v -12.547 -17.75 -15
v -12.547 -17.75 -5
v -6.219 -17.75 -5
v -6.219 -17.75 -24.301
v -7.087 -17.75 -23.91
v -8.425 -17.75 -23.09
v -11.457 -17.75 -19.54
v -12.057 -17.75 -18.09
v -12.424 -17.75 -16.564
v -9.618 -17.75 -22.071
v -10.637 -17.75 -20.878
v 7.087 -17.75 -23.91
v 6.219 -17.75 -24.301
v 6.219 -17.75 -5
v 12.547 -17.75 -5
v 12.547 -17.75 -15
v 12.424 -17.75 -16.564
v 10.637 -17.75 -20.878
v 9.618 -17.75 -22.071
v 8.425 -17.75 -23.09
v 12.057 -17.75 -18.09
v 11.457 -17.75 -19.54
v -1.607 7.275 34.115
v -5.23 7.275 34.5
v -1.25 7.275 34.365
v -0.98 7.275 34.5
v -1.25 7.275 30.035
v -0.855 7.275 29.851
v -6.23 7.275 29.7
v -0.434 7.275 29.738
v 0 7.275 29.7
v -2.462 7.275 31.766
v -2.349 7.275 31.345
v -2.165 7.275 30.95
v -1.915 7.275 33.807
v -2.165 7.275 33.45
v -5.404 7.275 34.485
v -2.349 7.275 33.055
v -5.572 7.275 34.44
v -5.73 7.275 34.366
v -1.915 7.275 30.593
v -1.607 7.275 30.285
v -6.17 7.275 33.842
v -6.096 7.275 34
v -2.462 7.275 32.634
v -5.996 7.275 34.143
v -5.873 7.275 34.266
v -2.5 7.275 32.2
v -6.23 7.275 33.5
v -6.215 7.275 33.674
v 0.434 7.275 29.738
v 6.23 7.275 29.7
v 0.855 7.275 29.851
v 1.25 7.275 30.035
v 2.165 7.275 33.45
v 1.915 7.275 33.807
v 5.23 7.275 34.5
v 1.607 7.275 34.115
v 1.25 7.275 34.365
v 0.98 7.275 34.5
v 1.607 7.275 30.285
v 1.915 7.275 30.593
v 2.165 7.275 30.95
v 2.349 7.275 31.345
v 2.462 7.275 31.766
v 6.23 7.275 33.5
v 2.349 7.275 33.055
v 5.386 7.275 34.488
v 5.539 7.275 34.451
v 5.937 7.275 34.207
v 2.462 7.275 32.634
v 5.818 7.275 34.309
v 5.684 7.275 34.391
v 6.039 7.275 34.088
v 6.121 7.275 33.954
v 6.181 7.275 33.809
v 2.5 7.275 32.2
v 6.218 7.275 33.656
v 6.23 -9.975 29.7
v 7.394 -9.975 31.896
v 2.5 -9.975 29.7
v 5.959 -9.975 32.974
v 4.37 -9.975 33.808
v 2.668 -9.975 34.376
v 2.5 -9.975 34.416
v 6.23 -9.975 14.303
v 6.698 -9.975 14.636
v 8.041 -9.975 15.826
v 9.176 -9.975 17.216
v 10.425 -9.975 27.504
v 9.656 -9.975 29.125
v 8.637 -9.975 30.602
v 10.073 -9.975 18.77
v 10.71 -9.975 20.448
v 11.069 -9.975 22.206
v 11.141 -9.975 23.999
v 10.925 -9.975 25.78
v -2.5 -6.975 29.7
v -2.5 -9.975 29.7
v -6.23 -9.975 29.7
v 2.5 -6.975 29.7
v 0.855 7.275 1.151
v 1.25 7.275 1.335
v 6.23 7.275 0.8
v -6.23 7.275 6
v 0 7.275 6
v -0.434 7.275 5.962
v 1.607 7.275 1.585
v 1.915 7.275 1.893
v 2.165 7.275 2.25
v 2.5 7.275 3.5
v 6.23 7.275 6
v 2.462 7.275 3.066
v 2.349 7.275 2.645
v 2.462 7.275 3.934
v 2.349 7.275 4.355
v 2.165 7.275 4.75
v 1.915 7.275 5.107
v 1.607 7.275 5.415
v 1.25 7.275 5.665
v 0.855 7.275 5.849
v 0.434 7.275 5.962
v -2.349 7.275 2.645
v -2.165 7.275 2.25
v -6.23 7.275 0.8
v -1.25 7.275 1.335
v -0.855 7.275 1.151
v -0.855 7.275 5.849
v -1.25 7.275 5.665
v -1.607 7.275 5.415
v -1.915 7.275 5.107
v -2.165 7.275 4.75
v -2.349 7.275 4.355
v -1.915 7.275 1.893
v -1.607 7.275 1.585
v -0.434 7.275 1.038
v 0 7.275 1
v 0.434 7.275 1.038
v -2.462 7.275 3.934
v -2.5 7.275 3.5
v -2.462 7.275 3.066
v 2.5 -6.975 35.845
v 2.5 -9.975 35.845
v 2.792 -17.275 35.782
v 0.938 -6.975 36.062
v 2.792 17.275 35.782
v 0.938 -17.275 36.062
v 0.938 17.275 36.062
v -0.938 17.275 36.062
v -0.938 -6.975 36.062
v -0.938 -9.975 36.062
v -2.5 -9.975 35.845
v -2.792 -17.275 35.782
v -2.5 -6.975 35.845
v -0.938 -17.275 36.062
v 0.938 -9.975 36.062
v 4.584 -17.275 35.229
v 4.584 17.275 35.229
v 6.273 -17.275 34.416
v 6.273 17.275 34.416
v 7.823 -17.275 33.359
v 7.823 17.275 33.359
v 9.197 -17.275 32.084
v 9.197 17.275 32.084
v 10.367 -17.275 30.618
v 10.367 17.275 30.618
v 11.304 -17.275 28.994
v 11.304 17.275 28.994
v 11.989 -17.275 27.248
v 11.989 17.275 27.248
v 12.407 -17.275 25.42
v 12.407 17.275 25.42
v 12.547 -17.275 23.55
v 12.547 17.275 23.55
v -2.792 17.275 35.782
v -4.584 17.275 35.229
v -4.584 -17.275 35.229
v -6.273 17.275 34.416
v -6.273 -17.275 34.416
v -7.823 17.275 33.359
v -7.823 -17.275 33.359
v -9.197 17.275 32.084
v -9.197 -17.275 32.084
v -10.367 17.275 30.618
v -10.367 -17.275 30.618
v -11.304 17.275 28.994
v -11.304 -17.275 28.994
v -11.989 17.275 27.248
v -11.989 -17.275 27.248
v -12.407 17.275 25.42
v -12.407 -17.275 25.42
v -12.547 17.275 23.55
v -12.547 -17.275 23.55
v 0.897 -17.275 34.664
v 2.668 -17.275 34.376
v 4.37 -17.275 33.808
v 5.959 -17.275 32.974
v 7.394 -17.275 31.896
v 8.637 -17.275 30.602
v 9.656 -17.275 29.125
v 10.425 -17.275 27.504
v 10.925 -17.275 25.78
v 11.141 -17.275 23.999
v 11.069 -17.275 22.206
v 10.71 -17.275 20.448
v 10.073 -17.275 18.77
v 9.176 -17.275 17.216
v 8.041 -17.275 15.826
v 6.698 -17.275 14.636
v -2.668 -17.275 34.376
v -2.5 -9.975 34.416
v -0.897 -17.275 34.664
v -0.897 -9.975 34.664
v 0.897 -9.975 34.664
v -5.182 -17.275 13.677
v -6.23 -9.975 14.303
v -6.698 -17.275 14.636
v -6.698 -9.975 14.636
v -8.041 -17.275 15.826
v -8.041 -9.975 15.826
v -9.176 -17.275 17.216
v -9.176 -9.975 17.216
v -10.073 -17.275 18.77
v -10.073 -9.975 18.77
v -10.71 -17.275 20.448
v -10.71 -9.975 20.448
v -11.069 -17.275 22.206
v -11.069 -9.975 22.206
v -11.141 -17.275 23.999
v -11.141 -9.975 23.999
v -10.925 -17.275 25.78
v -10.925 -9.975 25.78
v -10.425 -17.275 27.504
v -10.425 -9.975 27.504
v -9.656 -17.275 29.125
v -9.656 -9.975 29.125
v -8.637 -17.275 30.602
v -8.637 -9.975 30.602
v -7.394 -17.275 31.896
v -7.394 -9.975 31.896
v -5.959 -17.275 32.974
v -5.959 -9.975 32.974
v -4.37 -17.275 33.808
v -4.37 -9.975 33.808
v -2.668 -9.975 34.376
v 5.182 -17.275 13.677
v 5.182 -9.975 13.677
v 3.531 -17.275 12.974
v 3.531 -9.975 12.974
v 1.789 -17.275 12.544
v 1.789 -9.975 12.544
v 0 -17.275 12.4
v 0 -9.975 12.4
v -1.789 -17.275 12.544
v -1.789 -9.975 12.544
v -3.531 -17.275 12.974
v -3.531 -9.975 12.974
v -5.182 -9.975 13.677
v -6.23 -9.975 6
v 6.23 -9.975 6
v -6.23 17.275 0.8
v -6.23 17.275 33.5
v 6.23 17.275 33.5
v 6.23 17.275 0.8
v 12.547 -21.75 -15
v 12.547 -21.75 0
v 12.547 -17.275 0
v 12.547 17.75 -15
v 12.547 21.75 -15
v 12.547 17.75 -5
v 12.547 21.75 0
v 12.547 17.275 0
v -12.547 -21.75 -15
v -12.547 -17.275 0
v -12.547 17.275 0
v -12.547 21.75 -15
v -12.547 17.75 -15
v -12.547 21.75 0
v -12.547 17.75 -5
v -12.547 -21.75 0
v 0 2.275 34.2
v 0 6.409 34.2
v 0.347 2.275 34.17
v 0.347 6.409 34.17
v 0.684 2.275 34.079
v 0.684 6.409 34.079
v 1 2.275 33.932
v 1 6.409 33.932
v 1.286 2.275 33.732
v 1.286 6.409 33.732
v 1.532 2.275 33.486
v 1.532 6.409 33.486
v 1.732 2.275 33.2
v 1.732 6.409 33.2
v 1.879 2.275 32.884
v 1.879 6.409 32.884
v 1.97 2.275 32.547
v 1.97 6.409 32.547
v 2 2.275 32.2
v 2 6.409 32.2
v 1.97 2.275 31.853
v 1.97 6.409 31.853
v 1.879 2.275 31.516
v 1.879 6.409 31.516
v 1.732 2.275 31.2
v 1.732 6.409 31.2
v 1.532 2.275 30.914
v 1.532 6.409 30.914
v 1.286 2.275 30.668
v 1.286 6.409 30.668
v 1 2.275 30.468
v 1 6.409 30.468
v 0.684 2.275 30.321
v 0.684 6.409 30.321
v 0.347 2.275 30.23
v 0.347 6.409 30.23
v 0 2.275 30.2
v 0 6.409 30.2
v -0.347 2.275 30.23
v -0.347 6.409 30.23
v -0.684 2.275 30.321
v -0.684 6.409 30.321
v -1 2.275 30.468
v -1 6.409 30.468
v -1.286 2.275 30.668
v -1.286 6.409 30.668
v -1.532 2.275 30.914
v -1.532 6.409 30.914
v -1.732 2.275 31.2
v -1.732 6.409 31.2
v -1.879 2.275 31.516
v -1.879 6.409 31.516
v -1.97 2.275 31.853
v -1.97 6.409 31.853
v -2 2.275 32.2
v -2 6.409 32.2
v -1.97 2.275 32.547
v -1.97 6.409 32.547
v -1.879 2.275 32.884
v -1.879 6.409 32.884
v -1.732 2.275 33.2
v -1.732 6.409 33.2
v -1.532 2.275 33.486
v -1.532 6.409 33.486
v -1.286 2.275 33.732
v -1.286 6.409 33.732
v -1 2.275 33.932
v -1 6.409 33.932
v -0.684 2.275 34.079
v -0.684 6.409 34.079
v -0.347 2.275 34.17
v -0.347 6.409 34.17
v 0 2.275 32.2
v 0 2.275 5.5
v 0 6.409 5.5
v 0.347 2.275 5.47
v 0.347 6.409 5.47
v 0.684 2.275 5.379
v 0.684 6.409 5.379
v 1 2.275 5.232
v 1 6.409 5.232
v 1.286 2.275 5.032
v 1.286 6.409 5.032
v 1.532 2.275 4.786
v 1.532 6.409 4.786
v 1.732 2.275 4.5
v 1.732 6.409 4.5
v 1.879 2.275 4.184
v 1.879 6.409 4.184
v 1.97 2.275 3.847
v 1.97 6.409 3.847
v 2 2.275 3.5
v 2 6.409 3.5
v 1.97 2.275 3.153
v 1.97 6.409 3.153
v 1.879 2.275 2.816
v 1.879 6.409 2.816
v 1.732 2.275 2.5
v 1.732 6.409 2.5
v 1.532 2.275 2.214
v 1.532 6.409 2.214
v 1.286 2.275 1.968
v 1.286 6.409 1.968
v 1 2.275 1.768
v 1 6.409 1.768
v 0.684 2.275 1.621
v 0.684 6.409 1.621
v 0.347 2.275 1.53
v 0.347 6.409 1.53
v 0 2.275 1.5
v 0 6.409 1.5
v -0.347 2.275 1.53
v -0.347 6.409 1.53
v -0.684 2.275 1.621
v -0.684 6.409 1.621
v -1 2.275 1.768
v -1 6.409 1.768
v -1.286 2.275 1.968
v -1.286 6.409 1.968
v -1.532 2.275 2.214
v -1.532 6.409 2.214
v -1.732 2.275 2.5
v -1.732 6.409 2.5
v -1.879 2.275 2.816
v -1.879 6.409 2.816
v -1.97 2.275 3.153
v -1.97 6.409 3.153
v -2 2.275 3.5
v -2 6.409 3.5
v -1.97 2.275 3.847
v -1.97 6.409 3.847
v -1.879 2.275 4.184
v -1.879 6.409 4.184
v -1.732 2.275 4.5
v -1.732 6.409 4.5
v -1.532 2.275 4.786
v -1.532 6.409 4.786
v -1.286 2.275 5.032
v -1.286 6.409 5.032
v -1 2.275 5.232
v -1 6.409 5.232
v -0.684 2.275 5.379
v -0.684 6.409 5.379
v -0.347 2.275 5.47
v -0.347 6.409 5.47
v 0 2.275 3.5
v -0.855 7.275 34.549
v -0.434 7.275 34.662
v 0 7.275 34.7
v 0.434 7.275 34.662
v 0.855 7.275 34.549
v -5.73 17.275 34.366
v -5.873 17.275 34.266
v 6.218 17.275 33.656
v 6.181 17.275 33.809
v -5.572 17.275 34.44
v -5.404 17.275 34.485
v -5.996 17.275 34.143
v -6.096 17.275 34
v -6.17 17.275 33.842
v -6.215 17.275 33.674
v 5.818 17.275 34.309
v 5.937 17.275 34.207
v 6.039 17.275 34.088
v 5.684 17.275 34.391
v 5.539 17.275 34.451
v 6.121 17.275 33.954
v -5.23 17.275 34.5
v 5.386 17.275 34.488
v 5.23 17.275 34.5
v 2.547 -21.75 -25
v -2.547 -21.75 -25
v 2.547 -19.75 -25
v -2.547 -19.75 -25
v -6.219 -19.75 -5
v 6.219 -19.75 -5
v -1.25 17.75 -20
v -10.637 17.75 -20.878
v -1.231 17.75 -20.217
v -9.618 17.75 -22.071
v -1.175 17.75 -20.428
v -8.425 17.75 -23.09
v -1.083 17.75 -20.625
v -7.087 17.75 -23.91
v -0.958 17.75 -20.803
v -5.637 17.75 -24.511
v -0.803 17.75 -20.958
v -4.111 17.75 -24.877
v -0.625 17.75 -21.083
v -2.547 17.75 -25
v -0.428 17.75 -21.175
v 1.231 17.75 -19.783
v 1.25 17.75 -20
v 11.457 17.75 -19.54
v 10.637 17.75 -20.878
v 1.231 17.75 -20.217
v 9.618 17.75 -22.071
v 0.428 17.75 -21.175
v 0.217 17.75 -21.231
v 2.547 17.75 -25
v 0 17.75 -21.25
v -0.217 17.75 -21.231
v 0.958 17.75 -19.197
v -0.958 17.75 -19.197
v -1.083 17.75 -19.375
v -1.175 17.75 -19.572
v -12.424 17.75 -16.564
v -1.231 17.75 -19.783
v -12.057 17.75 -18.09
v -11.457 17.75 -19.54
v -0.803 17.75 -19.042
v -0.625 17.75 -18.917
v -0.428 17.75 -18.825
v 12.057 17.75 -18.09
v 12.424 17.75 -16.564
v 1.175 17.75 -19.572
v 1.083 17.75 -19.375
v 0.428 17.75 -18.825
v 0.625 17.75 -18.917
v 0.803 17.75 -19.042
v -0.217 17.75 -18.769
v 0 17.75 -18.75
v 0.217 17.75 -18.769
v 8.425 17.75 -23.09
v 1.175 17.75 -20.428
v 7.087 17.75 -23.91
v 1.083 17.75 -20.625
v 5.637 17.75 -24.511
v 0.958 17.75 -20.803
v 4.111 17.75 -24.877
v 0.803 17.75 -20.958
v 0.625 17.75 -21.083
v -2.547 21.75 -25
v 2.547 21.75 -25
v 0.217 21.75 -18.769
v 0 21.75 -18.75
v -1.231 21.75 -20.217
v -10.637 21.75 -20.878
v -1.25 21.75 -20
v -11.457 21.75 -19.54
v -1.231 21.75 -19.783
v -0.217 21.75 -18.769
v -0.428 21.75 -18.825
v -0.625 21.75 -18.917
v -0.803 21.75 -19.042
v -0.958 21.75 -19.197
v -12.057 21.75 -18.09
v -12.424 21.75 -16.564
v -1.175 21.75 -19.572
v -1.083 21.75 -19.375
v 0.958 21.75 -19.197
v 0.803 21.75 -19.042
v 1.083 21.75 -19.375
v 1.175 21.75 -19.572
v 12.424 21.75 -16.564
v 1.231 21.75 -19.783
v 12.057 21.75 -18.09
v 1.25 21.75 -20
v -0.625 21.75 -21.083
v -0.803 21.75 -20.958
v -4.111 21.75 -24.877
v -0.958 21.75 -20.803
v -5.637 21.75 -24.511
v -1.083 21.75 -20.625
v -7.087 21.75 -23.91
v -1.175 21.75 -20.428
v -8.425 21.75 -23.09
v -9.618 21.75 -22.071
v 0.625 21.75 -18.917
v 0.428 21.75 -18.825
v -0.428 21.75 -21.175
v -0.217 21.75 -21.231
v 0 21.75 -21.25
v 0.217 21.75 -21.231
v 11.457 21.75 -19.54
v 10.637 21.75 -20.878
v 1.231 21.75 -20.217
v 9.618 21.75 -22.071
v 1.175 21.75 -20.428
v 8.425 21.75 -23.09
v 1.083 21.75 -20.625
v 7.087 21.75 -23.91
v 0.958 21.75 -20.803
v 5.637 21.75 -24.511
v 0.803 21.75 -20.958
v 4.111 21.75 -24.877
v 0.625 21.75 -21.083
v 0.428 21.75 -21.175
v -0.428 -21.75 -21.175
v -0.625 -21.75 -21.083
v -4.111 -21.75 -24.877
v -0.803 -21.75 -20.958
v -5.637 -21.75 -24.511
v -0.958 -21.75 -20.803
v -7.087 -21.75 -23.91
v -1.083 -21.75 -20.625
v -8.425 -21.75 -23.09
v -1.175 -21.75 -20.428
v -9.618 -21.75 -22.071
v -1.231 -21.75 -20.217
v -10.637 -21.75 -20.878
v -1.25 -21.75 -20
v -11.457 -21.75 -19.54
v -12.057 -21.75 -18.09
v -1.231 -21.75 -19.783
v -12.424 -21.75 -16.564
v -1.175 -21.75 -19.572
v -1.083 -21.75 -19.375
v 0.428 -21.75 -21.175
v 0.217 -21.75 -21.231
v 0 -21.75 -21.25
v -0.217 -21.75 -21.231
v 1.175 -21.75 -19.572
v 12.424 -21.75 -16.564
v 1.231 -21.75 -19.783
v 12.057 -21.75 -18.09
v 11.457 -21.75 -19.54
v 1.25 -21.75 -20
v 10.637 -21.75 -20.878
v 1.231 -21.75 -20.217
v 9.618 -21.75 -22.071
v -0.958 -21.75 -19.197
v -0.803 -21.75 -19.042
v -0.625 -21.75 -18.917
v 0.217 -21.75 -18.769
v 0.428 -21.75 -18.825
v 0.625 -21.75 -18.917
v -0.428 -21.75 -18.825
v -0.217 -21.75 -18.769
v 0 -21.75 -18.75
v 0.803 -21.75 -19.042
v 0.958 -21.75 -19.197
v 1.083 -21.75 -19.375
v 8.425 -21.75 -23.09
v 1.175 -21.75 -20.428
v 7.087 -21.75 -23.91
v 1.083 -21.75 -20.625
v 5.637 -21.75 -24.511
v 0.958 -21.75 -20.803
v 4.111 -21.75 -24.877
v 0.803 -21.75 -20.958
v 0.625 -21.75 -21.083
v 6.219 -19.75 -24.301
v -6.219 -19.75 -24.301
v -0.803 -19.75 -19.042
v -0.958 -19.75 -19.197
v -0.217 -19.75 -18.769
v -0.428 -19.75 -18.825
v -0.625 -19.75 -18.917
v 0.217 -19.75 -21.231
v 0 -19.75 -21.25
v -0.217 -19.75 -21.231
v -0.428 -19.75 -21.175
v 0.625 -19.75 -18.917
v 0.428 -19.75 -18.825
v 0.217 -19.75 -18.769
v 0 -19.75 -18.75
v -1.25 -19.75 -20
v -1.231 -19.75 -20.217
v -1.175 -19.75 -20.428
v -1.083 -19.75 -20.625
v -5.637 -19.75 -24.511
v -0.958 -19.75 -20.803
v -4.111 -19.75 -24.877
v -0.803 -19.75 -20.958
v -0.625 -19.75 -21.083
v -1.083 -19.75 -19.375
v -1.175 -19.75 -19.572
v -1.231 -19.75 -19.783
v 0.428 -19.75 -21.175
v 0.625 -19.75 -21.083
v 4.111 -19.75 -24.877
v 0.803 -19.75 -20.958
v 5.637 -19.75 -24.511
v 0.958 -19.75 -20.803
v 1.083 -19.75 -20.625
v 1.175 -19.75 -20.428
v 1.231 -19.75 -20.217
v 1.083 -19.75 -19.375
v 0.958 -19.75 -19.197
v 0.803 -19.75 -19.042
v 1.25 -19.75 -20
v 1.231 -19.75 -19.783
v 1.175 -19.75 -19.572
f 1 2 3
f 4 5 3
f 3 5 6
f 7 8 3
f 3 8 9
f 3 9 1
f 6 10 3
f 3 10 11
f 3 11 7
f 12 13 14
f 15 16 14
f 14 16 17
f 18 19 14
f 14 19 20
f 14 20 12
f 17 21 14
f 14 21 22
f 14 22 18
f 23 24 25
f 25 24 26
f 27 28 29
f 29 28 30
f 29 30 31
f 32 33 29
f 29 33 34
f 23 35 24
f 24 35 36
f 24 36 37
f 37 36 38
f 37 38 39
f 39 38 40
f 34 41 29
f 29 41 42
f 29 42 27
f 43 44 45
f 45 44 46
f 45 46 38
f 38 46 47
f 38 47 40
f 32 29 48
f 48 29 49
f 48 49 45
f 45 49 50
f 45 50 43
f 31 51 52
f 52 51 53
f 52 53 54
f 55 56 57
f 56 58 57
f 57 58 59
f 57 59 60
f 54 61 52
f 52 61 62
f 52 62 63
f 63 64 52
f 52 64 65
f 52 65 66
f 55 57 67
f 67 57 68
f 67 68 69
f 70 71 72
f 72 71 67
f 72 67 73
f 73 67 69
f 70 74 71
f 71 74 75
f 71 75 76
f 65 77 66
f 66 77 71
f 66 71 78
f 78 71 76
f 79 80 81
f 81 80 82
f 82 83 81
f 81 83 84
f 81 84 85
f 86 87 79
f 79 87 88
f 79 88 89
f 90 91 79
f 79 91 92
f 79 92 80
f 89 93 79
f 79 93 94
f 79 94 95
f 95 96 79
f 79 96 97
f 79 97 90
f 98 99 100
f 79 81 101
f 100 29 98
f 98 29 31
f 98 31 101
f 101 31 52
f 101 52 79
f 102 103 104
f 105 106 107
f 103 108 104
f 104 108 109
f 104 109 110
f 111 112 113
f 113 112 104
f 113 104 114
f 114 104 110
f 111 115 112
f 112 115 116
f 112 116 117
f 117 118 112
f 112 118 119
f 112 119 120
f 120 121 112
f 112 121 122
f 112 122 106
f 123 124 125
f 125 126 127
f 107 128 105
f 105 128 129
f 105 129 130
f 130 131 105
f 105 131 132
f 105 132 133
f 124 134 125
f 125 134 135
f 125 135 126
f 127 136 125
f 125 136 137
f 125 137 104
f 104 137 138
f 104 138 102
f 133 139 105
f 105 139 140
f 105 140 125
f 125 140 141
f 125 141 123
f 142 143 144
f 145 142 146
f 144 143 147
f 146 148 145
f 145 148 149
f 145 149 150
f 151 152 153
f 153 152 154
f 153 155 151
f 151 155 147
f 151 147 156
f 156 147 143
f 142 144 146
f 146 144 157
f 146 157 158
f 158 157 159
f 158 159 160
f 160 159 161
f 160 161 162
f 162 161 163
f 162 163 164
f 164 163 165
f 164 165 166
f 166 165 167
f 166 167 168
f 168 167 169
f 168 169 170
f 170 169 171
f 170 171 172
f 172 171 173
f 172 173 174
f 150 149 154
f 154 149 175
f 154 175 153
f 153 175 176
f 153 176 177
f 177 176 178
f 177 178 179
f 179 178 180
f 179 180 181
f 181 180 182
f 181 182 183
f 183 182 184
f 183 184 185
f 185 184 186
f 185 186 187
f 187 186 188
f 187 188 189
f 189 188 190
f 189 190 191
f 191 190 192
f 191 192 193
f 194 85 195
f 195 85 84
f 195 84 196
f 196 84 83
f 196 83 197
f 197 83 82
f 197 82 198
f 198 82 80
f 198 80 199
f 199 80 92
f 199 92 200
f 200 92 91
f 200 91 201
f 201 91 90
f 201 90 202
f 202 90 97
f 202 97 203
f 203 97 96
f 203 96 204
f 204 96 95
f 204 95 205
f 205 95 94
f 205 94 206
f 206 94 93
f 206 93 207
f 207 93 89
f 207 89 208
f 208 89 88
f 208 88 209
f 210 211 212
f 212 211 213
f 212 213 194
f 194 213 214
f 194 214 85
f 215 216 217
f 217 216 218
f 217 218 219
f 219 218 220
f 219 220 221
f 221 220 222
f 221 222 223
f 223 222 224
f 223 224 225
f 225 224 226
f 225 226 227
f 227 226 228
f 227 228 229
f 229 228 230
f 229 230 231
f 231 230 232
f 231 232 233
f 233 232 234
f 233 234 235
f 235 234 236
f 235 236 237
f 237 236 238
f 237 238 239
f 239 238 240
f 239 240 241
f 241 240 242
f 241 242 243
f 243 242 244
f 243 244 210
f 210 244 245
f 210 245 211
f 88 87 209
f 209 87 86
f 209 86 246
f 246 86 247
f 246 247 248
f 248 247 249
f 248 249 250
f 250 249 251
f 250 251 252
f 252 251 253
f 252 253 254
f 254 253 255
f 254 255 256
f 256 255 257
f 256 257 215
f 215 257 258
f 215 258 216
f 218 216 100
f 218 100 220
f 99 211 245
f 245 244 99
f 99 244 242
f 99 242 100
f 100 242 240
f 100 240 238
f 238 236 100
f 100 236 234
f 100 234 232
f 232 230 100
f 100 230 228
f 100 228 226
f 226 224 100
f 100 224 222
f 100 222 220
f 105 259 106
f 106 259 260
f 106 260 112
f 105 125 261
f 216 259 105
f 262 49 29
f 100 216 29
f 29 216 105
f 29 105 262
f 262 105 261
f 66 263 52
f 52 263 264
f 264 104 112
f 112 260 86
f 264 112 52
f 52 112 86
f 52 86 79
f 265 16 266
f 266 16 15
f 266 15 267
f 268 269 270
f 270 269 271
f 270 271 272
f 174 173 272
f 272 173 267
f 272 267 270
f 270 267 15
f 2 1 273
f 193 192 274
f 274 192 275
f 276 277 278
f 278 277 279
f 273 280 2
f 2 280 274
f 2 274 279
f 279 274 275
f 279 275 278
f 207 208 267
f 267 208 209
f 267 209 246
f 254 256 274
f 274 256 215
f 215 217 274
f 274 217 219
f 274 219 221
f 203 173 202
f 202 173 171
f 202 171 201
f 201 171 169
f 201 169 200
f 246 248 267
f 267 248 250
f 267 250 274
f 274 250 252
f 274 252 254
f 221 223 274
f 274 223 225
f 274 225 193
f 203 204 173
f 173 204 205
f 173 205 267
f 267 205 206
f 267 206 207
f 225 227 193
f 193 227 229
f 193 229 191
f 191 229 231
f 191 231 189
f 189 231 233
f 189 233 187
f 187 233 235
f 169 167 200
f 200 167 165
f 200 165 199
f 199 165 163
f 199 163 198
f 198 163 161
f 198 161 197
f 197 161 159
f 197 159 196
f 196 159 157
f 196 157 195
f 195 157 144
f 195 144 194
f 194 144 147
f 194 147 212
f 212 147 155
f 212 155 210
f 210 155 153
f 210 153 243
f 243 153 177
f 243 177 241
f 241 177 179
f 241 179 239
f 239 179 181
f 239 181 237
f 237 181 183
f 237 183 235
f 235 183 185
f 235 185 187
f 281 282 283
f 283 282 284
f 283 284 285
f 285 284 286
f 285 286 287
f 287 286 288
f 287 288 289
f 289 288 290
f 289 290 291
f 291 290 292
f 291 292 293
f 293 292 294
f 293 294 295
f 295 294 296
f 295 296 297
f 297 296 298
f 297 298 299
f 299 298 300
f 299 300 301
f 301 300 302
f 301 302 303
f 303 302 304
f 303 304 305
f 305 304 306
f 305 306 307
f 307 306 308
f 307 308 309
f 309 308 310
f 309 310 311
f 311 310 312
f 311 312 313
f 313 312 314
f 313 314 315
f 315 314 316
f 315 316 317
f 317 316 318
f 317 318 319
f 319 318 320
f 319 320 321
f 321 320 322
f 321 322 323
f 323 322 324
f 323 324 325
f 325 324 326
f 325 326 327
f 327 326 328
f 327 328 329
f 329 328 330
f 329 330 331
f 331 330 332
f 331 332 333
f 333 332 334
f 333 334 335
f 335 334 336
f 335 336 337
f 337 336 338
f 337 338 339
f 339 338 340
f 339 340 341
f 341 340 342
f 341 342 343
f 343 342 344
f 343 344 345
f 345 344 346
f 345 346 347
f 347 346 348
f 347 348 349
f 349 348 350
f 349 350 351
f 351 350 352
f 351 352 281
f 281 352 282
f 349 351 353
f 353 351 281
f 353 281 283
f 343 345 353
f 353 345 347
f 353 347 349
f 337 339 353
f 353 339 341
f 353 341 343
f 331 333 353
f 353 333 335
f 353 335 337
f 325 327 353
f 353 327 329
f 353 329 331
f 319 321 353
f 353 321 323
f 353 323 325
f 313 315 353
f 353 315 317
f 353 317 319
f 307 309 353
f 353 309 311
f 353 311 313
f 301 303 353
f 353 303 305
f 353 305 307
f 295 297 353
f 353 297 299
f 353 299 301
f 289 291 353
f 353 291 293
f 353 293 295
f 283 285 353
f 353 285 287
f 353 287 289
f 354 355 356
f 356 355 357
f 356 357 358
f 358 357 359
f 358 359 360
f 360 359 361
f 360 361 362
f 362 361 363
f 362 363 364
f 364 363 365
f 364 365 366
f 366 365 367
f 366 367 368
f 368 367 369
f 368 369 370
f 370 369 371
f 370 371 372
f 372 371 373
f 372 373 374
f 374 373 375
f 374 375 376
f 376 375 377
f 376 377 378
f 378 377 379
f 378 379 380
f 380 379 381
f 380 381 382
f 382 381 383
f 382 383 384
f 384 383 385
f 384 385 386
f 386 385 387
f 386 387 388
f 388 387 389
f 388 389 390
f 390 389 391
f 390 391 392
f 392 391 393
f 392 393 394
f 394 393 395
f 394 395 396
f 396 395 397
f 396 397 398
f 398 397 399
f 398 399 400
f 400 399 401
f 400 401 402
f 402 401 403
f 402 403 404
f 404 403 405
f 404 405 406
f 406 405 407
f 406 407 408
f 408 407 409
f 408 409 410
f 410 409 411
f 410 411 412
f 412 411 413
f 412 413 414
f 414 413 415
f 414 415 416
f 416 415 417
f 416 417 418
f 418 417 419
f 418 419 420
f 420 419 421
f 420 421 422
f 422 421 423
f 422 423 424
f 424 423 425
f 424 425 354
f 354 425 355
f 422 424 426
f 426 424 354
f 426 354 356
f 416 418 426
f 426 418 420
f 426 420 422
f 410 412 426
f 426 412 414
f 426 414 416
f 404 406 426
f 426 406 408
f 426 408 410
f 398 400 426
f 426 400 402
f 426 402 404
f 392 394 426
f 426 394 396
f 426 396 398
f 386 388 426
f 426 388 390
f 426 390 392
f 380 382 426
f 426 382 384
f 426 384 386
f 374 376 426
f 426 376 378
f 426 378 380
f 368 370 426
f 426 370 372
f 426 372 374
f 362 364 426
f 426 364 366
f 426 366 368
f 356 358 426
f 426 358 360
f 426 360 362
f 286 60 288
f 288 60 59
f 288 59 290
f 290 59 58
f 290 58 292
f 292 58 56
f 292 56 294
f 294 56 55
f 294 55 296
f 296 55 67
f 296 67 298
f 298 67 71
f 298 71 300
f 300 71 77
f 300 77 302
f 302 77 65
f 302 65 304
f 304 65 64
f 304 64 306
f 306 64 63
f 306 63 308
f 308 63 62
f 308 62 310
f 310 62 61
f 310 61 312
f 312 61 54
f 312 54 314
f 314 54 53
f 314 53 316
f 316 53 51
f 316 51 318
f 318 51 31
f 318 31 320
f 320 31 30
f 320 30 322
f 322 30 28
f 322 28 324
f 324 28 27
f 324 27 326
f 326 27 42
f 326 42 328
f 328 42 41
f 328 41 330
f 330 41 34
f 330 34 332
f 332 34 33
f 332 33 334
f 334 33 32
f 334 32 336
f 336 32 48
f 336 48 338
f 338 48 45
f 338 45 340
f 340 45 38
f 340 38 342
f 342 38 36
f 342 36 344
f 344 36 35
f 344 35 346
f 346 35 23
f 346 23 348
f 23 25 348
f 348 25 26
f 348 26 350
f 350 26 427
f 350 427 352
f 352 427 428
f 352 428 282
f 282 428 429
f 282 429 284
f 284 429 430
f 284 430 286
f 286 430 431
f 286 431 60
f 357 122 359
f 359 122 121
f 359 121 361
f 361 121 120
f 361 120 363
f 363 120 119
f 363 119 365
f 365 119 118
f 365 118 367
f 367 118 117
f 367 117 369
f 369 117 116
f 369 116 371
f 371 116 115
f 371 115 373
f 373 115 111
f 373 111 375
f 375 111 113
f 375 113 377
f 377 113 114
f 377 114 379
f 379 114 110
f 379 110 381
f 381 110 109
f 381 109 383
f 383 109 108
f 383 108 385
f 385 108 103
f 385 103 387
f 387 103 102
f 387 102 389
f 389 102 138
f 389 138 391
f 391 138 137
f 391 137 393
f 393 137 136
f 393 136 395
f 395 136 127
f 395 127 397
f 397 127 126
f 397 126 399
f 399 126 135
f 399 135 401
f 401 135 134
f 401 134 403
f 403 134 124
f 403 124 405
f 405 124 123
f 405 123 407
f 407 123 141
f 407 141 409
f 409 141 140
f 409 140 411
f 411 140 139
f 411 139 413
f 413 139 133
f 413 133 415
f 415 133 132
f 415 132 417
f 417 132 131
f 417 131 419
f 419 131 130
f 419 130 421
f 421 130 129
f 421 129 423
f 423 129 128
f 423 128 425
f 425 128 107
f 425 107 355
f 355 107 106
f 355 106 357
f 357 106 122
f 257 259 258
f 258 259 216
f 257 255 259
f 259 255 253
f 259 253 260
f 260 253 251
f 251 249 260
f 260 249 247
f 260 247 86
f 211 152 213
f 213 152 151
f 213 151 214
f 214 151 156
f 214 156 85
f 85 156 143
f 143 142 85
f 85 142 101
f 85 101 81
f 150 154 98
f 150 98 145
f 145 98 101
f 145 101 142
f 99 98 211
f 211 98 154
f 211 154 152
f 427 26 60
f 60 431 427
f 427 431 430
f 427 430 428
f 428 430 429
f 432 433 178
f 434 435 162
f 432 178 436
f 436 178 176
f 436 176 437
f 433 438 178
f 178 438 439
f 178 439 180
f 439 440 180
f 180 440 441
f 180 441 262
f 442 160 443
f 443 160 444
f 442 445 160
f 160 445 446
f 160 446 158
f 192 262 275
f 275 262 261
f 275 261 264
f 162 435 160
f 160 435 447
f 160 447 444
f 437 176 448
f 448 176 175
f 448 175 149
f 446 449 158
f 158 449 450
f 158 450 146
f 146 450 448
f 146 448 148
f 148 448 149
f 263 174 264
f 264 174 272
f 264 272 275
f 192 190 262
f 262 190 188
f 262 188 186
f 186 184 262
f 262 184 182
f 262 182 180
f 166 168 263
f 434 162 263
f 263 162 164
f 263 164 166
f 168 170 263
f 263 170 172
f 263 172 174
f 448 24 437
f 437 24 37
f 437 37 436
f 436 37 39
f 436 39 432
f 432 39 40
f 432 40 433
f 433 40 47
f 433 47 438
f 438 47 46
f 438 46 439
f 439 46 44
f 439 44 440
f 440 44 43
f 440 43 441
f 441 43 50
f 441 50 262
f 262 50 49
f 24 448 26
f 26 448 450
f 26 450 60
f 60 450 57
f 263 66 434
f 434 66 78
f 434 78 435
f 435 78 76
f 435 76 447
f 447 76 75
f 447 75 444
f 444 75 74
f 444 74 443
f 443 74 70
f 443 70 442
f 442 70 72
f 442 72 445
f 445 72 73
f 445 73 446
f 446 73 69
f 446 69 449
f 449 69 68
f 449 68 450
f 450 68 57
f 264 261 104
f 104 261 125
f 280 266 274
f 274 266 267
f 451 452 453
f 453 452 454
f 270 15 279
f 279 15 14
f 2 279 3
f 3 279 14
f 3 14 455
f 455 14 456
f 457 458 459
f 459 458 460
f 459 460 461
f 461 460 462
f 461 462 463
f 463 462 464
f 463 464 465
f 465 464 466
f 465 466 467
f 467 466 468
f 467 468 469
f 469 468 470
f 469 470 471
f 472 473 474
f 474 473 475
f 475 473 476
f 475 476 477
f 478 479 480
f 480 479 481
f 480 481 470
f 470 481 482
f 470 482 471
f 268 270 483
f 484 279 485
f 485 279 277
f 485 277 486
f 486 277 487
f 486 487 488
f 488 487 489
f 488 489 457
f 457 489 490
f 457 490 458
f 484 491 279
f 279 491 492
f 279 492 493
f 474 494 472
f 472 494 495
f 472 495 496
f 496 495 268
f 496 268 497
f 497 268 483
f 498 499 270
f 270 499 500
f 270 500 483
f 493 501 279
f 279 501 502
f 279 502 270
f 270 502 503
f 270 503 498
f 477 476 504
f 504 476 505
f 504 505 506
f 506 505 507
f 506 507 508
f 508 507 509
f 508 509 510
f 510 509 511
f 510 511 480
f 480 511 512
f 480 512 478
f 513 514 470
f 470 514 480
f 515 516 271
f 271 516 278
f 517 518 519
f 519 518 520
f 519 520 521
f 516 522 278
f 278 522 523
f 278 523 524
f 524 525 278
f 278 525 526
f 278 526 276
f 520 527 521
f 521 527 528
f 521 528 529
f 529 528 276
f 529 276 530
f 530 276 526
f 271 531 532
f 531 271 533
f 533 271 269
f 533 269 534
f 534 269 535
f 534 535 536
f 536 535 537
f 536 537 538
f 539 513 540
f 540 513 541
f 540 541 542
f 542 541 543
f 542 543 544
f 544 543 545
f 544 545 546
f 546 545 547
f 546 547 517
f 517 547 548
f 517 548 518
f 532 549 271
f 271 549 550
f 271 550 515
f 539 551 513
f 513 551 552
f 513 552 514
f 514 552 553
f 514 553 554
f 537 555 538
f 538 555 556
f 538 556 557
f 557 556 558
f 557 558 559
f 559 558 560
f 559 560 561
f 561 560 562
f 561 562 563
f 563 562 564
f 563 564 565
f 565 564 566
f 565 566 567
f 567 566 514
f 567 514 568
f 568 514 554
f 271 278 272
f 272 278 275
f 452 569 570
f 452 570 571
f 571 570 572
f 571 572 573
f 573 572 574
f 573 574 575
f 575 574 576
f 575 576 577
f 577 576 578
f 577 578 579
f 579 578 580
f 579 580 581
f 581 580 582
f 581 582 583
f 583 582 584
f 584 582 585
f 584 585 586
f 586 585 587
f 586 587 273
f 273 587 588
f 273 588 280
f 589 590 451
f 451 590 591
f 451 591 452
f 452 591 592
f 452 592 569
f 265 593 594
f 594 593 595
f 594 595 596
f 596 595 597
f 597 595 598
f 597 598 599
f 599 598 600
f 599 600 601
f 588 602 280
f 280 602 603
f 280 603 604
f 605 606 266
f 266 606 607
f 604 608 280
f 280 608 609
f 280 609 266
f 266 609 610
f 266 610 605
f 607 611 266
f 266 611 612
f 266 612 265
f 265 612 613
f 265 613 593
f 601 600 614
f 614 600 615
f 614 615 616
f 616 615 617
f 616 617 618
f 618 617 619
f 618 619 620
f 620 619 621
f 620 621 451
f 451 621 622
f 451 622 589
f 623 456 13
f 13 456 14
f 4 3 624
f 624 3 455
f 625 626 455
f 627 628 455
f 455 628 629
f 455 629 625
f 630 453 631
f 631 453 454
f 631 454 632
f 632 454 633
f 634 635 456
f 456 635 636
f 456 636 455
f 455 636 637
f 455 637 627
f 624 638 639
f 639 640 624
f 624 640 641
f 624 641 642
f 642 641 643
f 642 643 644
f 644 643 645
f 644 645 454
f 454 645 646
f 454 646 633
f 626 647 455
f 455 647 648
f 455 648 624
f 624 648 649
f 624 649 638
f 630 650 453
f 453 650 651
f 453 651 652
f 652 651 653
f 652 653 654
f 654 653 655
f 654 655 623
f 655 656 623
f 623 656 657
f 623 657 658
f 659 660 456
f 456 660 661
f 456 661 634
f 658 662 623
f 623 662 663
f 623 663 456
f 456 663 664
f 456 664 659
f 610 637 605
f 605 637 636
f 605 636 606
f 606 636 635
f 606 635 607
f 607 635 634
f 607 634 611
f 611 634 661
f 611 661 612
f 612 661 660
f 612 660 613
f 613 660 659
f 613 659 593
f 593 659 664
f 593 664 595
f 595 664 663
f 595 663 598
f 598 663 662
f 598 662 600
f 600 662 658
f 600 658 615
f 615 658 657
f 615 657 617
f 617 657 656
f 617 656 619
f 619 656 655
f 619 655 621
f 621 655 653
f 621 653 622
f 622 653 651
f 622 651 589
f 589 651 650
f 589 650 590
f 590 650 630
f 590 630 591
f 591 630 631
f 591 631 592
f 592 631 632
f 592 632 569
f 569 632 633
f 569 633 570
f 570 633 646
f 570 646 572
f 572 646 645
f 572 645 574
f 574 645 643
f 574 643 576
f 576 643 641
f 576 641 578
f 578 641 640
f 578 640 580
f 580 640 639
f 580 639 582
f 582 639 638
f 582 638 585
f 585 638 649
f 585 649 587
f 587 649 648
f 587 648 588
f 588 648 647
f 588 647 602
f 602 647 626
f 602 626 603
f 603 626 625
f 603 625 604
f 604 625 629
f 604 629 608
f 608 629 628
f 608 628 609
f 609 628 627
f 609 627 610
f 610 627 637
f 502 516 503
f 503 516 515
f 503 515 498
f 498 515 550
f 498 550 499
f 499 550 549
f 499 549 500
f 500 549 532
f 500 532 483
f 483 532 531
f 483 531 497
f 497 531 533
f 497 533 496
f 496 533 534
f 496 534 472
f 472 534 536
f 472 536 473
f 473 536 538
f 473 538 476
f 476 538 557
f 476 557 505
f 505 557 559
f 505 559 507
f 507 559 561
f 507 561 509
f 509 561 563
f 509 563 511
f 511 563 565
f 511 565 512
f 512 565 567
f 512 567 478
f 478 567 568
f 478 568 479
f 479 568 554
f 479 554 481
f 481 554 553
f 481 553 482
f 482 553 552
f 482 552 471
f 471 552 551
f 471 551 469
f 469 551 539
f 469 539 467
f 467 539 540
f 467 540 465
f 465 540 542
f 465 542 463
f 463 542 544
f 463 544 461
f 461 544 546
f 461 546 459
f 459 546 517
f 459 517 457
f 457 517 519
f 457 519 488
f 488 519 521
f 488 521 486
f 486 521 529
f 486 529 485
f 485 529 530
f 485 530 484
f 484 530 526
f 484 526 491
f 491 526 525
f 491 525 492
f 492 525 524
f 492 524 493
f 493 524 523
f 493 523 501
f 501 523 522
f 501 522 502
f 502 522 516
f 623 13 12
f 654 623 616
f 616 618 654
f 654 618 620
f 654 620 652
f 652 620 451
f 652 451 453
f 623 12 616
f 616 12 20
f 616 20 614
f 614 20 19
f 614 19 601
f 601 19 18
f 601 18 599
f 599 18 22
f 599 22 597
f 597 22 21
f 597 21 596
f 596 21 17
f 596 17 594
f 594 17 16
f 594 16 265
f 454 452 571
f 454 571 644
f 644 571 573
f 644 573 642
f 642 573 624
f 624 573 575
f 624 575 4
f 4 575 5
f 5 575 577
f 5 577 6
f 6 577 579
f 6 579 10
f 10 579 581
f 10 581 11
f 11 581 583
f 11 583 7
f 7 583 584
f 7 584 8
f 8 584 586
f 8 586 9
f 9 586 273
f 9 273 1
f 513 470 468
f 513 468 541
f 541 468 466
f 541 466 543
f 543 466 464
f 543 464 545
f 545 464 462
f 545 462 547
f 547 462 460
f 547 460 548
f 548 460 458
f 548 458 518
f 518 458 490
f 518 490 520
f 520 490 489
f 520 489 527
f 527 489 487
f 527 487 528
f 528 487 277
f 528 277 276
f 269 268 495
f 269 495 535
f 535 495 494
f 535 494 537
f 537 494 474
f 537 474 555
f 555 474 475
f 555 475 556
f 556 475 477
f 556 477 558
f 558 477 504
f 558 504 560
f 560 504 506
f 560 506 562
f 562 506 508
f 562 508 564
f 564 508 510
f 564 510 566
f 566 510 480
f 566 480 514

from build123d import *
from OCP.BRepFilletAPI import BRepFilletAPI_MakeChamfer

# Parameters (mm, degrees)
SKETCH4_W                = 12.46
SKETCH4_H                = 17.25
BOSS_EXTRUDE3_DEPTH      = 6
BOSS_EXTRUDE6_DEPTH      = 7.3
BOSS_EXTRUDE6_DEPTH_BACK = 17.25
SKETCH8_R                = 12.546781182
SKETCH8_R_2              = 11.15
BOSS_EXTRUDE4_DEPTH      = 17.25
SKETCH6_R                = 2
CUT_EXTRUDE1_DEPTH       = 5
CHAMFER1_SIZE            = 0.5
CHAMFER1_SIZE_2          = 0.866025404
SKETCH10_W               = 12.46
SKETCH10_H               = 23.7
CUT_EXTRUDE3_DEPTH       = 17.25
CUT_EXTRUDE4_REACH       = 43.938
SKETCH11_W               = 5
SKETCH11_H               = 3
BOSS_EXTRUDE7_START      = -7.3
BOSS_EXTRUDE7_DEPTH      = 7.3
BOSS_EXTRUDE9_START      = 10
BOSS_EXTRUDE9_DEPTH      = 10
BOSS_EXTRUDE10_DEPTH     = 25.093562364
SKETCH18_W               = 20
SKETCH18_H               = 12.438292938
CUT_EXTRUDE5_DEPTH       = 2
CUT_EXTRUDE6_DEPTH       = 57.41497434
CUT_EXTRUDE6_DEPTH_BACK  = 57.41497434
SKETCH19_R               = 1.25
FILLET1_R                = 10


with BuildPart() as part:
    # Sketch4 → Boss-Extrude3 (new body)
    with BuildSketch(Plane.XY):
        with Locations((0, -1.35)):
            Rectangle(SKETCH4_W, SKETCH4_H)
    extrude(amount=BOSS_EXTRUDE3_DEPTH)



with BuildPart() as body_2:
    # Sketch8 → Boss-Extrude6 (new, two sides: drawn at the far end of the back side and taken through both)
    with BuildSketch(Plane(origin=(0, -9.975, 0), x_dir=(-1, 0, 0), z_dir=(0, -1, 0)).offset(-BOSS_EXTRUDE6_DEPTH_BACK)):
        with Locations(Location((0, -23.55, 0), (0, 0, 90))):
            Circle(SKETCH8_R)
        with Locations(Location((0, -23.55, 0), (0, 0, 90))):
            Circle(SKETCH8_R_2, mode=Mode.SUBTRACT)
    extrude(amount=BOSS_EXTRUDE6_DEPTH + BOSS_EXTRUDE6_DEPTH_BACK)


with BuildPart() as part_1:
    add(part.part)

    add(body_2.part)  # Boss-Extrude4 merges body 2
    # Sketch5 → Boss-Extrude4 (add)
    with BuildSketch(Plane(origin=(0, 7.275, 0), x_dir=(1, 0, 0), z_dir=(0, 1, 0))):
        with BuildLine():
            Line((12.546781182, -23.55), (12.546781182, 0))
            Line((12.546781182, 0), (6.23, 0))
            Line((6.23, 0), (6.23, -29.7))
            Line((6.23, -29.7), (-6.23, -29.7))
            Line((-6.23, -29.7), (-6.23, 0))
            Line((-6.23, 0), (-12.546781182, 0))
            Line((-12.546781182, 0), (-12.546781182, -23.55))
            ThreePointArc((-12.546781182, -23.55), (0, -36.096781182), (12.546781182, -23.55))
        make_face()
    extrude(amount=-BOSS_EXTRUDE4_DEPTH)

    # Sketch6 → Cut-Extrude1 (cut)
    with BuildSketch(Plane(origin=(0, 7.275, 0), x_dir=(1, 0, 0), z_dir=(0, 1, 0))):
        with Locations(Location((0, -3.5, 0), (0, 0, 270))):
            Circle(SKETCH6_R)
        with Locations(Location((0, -32.2, 0), (0, 0, 270))):
            Circle(SKETCH6_R)
    extrude(amount=-CUT_EXTRUDE1_DEPTH, mode=Mode.SUBTRACT)

    # Chamfer1
    chamfer1_edges_1 = [part_1.edges().sort_by_distance(p)[0] for p in [
        (0, 7.275, 1.5),
    ]]
    chamfer1_side_1 = [part_1.faces().sort_by_distance(p)[0] for p in [
        (0, 7.275, 1.49),
    ]]
    chamfer1_edges_2 = [part_1.edges().sort_by_distance(p)[0] for p in [
        (0, 7.275, 30.2),
    ]]
    chamfer1_side_2 = [part_1.faces().sort_by_distance(p)[0] for p in [
        (0, 7.275, 30.19),
    ]]
    chamfer1 = BRepFilletAPI_MakeChamfer(part_1.part.solid().wrapped)
    for e in chamfer1_edges_1:
        chamfer1.Add(CHAMFER1_SIZE - 0.0001, CHAMFER1_SIZE_2 - 0.0001, e.wrapped, chamfer1_side_1[0].wrapped)
    for e in chamfer1_edges_2:
        chamfer1.Add(CHAMFER1_SIZE - 0.0001, CHAMFER1_SIZE_2 - 0.0001, e.wrapped, chamfer1_side_2[0].wrapped)
    add(Compound.cast(chamfer1.Shape()), mode=Mode.REPLACE)  # a hair under: the kernel refuses the full size

    # Sketch10 → Cut-Extrude3 (cut)
    with BuildSketch(Plane(origin=(0, 7.275, 0), x_dir=(1, 0, 0), z_dir=(0, 1, 0))):
        with Locations((0, -17.85)):
            Rectangle(SKETCH10_W, SKETCH10_H)
    extrude(amount=-CUT_EXTRUDE3_DEPTH, mode=Mode.SUBTRACT)

    # Sketch11 → Cut-Extrude4 (cut, up to next)
    with BuildSketch(Plane.XY.offset(36.096781182), mode=Mode.PRIVATE) as cut_extrude4_sk1:
        with Locations((0, -8.475)):
            Rectangle(SKETCH11_W, SKETCH11_H)
    cut_extrude4_tool1 = extrude(cut_extrude4_sk1.sketch, amount=-CUT_EXTRUDE4_REACH, mode=Mode.PRIVATE) & part_1.part
    add(cut_extrude4_tool1.solids().sort_by_distance((0, -8.475, 36.096781))[0], mode=Mode.SUBTRACT)

    # Sketch13 → Boss-Extrude7 (add)
    with BuildSketch(Plane.XZ.offset(17.275).offset(BOSS_EXTRUDE7_START)):
        with BuildLine():
            Line((-12.546781182, 23.55), (-12.546781182, 0))
            Line((-12.546781182, 0), (12.546781182, 0))
            Line((12.546781182, 0), (12.546781182, 23.55))
            ThreePointArc((12.546781182, 23.55), (0, 11.003218818), (-12.546781182, 23.55))
        make_face()
    extrude(amount=BOSS_EXTRUDE7_DEPTH)

    # Sketch15 → Boss-Extrude9 (add)
    with BuildSketch(Plane(origin=(0, 7.275, 0), x_dir=(1, 0, 0), z_dir=(0, 1, 0)).offset(BOSS_EXTRUDE9_START)):
        with BuildLine():
            Line((-12.546781182, 0), (12.546781182, 0))
            Line((12.546781182, 0), (12.546781182, -23.55))
            ThreePointArc((12.546781182, -23.55), (0, -36.096781182), (-12.546781182, -23.55))
            Line((-12.546781182, -23.55), (-12.546781182, 0))
        make_face()
        with BuildLine():
            Line((-6.23, -0.8), (6.23, -0.8))
            Line((6.23, -0.8), (6.23, -33.5))
            ThreePointArc((6.23, -33.5), (5.937106781, -34.207106781), (5.23, -34.5))
            Line((5.23, -34.5), (-5.23, -34.5))
            ThreePointArc((-5.23, -34.5), (-5.937106781, -34.207106781), (-6.23, -33.5))
            Line((-6.23, -33.5), (-6.23, -0.8))
        make_face(mode=Mode.SUBTRACT)
    extrude(amount=-BOSS_EXTRUDE9_DEPTH)

    # Sketch17 → Boss-Extrude10 (add)
    with BuildSketch(Plane(origin=(-12.546781182, 4.728218818, 0), x_dir=(0, -1, 0), z_dir=(1, 0, 0))):
        Polygon((26.478218818, 25), (26.478218818, 0), (-17.021781182, 0), (-17.021781182, 25), (-13.021781182, 25), (-13.021781182, 5), (22.478218818, 5), (22.478218818, 25), align=None)
    extrude(amount=BOSS_EXTRUDE10_DEPTH)

    # Sketch18 → Cut-Extrude5 (cut)
    with BuildSketch(Plane.ZX.offset(-17.75)):
        with Locations((-15, 0)):
            Rectangle(SKETCH18_W, SKETCH18_H)
    extrude(amount=-CUT_EXTRUDE5_DEPTH, mode=Mode.SUBTRACT)

    # Sketch19 → Cut-Extrude6 (cut, two sides: drawn at the far end of the back side and taken through both)
    with BuildSketch(Plane.ZX.offset(-19.75).offset(-CUT_EXTRUDE6_DEPTH_BACK)):
        with Locations((-20, 0)):
            Circle(SKETCH19_R)
    extrude(amount=CUT_EXTRUDE6_DEPTH + CUT_EXTRUDE6_DEPTH_BACK, mode=Mode.SUBTRACT)

    # Fillet1
    fillet1_edges = [part_1.edges().sort_by_distance(p)[0] for p in [
        (12.546781182, -19.75, -25),
        (-12.546781182, -19.75, -25),
        (12.546781182, 19.75, -25),
        (-12.546781182, 19.75, -25),
    ]]
    fillet(fillet1_edges, radius=FILLET1_R)


solid = part_1.part
